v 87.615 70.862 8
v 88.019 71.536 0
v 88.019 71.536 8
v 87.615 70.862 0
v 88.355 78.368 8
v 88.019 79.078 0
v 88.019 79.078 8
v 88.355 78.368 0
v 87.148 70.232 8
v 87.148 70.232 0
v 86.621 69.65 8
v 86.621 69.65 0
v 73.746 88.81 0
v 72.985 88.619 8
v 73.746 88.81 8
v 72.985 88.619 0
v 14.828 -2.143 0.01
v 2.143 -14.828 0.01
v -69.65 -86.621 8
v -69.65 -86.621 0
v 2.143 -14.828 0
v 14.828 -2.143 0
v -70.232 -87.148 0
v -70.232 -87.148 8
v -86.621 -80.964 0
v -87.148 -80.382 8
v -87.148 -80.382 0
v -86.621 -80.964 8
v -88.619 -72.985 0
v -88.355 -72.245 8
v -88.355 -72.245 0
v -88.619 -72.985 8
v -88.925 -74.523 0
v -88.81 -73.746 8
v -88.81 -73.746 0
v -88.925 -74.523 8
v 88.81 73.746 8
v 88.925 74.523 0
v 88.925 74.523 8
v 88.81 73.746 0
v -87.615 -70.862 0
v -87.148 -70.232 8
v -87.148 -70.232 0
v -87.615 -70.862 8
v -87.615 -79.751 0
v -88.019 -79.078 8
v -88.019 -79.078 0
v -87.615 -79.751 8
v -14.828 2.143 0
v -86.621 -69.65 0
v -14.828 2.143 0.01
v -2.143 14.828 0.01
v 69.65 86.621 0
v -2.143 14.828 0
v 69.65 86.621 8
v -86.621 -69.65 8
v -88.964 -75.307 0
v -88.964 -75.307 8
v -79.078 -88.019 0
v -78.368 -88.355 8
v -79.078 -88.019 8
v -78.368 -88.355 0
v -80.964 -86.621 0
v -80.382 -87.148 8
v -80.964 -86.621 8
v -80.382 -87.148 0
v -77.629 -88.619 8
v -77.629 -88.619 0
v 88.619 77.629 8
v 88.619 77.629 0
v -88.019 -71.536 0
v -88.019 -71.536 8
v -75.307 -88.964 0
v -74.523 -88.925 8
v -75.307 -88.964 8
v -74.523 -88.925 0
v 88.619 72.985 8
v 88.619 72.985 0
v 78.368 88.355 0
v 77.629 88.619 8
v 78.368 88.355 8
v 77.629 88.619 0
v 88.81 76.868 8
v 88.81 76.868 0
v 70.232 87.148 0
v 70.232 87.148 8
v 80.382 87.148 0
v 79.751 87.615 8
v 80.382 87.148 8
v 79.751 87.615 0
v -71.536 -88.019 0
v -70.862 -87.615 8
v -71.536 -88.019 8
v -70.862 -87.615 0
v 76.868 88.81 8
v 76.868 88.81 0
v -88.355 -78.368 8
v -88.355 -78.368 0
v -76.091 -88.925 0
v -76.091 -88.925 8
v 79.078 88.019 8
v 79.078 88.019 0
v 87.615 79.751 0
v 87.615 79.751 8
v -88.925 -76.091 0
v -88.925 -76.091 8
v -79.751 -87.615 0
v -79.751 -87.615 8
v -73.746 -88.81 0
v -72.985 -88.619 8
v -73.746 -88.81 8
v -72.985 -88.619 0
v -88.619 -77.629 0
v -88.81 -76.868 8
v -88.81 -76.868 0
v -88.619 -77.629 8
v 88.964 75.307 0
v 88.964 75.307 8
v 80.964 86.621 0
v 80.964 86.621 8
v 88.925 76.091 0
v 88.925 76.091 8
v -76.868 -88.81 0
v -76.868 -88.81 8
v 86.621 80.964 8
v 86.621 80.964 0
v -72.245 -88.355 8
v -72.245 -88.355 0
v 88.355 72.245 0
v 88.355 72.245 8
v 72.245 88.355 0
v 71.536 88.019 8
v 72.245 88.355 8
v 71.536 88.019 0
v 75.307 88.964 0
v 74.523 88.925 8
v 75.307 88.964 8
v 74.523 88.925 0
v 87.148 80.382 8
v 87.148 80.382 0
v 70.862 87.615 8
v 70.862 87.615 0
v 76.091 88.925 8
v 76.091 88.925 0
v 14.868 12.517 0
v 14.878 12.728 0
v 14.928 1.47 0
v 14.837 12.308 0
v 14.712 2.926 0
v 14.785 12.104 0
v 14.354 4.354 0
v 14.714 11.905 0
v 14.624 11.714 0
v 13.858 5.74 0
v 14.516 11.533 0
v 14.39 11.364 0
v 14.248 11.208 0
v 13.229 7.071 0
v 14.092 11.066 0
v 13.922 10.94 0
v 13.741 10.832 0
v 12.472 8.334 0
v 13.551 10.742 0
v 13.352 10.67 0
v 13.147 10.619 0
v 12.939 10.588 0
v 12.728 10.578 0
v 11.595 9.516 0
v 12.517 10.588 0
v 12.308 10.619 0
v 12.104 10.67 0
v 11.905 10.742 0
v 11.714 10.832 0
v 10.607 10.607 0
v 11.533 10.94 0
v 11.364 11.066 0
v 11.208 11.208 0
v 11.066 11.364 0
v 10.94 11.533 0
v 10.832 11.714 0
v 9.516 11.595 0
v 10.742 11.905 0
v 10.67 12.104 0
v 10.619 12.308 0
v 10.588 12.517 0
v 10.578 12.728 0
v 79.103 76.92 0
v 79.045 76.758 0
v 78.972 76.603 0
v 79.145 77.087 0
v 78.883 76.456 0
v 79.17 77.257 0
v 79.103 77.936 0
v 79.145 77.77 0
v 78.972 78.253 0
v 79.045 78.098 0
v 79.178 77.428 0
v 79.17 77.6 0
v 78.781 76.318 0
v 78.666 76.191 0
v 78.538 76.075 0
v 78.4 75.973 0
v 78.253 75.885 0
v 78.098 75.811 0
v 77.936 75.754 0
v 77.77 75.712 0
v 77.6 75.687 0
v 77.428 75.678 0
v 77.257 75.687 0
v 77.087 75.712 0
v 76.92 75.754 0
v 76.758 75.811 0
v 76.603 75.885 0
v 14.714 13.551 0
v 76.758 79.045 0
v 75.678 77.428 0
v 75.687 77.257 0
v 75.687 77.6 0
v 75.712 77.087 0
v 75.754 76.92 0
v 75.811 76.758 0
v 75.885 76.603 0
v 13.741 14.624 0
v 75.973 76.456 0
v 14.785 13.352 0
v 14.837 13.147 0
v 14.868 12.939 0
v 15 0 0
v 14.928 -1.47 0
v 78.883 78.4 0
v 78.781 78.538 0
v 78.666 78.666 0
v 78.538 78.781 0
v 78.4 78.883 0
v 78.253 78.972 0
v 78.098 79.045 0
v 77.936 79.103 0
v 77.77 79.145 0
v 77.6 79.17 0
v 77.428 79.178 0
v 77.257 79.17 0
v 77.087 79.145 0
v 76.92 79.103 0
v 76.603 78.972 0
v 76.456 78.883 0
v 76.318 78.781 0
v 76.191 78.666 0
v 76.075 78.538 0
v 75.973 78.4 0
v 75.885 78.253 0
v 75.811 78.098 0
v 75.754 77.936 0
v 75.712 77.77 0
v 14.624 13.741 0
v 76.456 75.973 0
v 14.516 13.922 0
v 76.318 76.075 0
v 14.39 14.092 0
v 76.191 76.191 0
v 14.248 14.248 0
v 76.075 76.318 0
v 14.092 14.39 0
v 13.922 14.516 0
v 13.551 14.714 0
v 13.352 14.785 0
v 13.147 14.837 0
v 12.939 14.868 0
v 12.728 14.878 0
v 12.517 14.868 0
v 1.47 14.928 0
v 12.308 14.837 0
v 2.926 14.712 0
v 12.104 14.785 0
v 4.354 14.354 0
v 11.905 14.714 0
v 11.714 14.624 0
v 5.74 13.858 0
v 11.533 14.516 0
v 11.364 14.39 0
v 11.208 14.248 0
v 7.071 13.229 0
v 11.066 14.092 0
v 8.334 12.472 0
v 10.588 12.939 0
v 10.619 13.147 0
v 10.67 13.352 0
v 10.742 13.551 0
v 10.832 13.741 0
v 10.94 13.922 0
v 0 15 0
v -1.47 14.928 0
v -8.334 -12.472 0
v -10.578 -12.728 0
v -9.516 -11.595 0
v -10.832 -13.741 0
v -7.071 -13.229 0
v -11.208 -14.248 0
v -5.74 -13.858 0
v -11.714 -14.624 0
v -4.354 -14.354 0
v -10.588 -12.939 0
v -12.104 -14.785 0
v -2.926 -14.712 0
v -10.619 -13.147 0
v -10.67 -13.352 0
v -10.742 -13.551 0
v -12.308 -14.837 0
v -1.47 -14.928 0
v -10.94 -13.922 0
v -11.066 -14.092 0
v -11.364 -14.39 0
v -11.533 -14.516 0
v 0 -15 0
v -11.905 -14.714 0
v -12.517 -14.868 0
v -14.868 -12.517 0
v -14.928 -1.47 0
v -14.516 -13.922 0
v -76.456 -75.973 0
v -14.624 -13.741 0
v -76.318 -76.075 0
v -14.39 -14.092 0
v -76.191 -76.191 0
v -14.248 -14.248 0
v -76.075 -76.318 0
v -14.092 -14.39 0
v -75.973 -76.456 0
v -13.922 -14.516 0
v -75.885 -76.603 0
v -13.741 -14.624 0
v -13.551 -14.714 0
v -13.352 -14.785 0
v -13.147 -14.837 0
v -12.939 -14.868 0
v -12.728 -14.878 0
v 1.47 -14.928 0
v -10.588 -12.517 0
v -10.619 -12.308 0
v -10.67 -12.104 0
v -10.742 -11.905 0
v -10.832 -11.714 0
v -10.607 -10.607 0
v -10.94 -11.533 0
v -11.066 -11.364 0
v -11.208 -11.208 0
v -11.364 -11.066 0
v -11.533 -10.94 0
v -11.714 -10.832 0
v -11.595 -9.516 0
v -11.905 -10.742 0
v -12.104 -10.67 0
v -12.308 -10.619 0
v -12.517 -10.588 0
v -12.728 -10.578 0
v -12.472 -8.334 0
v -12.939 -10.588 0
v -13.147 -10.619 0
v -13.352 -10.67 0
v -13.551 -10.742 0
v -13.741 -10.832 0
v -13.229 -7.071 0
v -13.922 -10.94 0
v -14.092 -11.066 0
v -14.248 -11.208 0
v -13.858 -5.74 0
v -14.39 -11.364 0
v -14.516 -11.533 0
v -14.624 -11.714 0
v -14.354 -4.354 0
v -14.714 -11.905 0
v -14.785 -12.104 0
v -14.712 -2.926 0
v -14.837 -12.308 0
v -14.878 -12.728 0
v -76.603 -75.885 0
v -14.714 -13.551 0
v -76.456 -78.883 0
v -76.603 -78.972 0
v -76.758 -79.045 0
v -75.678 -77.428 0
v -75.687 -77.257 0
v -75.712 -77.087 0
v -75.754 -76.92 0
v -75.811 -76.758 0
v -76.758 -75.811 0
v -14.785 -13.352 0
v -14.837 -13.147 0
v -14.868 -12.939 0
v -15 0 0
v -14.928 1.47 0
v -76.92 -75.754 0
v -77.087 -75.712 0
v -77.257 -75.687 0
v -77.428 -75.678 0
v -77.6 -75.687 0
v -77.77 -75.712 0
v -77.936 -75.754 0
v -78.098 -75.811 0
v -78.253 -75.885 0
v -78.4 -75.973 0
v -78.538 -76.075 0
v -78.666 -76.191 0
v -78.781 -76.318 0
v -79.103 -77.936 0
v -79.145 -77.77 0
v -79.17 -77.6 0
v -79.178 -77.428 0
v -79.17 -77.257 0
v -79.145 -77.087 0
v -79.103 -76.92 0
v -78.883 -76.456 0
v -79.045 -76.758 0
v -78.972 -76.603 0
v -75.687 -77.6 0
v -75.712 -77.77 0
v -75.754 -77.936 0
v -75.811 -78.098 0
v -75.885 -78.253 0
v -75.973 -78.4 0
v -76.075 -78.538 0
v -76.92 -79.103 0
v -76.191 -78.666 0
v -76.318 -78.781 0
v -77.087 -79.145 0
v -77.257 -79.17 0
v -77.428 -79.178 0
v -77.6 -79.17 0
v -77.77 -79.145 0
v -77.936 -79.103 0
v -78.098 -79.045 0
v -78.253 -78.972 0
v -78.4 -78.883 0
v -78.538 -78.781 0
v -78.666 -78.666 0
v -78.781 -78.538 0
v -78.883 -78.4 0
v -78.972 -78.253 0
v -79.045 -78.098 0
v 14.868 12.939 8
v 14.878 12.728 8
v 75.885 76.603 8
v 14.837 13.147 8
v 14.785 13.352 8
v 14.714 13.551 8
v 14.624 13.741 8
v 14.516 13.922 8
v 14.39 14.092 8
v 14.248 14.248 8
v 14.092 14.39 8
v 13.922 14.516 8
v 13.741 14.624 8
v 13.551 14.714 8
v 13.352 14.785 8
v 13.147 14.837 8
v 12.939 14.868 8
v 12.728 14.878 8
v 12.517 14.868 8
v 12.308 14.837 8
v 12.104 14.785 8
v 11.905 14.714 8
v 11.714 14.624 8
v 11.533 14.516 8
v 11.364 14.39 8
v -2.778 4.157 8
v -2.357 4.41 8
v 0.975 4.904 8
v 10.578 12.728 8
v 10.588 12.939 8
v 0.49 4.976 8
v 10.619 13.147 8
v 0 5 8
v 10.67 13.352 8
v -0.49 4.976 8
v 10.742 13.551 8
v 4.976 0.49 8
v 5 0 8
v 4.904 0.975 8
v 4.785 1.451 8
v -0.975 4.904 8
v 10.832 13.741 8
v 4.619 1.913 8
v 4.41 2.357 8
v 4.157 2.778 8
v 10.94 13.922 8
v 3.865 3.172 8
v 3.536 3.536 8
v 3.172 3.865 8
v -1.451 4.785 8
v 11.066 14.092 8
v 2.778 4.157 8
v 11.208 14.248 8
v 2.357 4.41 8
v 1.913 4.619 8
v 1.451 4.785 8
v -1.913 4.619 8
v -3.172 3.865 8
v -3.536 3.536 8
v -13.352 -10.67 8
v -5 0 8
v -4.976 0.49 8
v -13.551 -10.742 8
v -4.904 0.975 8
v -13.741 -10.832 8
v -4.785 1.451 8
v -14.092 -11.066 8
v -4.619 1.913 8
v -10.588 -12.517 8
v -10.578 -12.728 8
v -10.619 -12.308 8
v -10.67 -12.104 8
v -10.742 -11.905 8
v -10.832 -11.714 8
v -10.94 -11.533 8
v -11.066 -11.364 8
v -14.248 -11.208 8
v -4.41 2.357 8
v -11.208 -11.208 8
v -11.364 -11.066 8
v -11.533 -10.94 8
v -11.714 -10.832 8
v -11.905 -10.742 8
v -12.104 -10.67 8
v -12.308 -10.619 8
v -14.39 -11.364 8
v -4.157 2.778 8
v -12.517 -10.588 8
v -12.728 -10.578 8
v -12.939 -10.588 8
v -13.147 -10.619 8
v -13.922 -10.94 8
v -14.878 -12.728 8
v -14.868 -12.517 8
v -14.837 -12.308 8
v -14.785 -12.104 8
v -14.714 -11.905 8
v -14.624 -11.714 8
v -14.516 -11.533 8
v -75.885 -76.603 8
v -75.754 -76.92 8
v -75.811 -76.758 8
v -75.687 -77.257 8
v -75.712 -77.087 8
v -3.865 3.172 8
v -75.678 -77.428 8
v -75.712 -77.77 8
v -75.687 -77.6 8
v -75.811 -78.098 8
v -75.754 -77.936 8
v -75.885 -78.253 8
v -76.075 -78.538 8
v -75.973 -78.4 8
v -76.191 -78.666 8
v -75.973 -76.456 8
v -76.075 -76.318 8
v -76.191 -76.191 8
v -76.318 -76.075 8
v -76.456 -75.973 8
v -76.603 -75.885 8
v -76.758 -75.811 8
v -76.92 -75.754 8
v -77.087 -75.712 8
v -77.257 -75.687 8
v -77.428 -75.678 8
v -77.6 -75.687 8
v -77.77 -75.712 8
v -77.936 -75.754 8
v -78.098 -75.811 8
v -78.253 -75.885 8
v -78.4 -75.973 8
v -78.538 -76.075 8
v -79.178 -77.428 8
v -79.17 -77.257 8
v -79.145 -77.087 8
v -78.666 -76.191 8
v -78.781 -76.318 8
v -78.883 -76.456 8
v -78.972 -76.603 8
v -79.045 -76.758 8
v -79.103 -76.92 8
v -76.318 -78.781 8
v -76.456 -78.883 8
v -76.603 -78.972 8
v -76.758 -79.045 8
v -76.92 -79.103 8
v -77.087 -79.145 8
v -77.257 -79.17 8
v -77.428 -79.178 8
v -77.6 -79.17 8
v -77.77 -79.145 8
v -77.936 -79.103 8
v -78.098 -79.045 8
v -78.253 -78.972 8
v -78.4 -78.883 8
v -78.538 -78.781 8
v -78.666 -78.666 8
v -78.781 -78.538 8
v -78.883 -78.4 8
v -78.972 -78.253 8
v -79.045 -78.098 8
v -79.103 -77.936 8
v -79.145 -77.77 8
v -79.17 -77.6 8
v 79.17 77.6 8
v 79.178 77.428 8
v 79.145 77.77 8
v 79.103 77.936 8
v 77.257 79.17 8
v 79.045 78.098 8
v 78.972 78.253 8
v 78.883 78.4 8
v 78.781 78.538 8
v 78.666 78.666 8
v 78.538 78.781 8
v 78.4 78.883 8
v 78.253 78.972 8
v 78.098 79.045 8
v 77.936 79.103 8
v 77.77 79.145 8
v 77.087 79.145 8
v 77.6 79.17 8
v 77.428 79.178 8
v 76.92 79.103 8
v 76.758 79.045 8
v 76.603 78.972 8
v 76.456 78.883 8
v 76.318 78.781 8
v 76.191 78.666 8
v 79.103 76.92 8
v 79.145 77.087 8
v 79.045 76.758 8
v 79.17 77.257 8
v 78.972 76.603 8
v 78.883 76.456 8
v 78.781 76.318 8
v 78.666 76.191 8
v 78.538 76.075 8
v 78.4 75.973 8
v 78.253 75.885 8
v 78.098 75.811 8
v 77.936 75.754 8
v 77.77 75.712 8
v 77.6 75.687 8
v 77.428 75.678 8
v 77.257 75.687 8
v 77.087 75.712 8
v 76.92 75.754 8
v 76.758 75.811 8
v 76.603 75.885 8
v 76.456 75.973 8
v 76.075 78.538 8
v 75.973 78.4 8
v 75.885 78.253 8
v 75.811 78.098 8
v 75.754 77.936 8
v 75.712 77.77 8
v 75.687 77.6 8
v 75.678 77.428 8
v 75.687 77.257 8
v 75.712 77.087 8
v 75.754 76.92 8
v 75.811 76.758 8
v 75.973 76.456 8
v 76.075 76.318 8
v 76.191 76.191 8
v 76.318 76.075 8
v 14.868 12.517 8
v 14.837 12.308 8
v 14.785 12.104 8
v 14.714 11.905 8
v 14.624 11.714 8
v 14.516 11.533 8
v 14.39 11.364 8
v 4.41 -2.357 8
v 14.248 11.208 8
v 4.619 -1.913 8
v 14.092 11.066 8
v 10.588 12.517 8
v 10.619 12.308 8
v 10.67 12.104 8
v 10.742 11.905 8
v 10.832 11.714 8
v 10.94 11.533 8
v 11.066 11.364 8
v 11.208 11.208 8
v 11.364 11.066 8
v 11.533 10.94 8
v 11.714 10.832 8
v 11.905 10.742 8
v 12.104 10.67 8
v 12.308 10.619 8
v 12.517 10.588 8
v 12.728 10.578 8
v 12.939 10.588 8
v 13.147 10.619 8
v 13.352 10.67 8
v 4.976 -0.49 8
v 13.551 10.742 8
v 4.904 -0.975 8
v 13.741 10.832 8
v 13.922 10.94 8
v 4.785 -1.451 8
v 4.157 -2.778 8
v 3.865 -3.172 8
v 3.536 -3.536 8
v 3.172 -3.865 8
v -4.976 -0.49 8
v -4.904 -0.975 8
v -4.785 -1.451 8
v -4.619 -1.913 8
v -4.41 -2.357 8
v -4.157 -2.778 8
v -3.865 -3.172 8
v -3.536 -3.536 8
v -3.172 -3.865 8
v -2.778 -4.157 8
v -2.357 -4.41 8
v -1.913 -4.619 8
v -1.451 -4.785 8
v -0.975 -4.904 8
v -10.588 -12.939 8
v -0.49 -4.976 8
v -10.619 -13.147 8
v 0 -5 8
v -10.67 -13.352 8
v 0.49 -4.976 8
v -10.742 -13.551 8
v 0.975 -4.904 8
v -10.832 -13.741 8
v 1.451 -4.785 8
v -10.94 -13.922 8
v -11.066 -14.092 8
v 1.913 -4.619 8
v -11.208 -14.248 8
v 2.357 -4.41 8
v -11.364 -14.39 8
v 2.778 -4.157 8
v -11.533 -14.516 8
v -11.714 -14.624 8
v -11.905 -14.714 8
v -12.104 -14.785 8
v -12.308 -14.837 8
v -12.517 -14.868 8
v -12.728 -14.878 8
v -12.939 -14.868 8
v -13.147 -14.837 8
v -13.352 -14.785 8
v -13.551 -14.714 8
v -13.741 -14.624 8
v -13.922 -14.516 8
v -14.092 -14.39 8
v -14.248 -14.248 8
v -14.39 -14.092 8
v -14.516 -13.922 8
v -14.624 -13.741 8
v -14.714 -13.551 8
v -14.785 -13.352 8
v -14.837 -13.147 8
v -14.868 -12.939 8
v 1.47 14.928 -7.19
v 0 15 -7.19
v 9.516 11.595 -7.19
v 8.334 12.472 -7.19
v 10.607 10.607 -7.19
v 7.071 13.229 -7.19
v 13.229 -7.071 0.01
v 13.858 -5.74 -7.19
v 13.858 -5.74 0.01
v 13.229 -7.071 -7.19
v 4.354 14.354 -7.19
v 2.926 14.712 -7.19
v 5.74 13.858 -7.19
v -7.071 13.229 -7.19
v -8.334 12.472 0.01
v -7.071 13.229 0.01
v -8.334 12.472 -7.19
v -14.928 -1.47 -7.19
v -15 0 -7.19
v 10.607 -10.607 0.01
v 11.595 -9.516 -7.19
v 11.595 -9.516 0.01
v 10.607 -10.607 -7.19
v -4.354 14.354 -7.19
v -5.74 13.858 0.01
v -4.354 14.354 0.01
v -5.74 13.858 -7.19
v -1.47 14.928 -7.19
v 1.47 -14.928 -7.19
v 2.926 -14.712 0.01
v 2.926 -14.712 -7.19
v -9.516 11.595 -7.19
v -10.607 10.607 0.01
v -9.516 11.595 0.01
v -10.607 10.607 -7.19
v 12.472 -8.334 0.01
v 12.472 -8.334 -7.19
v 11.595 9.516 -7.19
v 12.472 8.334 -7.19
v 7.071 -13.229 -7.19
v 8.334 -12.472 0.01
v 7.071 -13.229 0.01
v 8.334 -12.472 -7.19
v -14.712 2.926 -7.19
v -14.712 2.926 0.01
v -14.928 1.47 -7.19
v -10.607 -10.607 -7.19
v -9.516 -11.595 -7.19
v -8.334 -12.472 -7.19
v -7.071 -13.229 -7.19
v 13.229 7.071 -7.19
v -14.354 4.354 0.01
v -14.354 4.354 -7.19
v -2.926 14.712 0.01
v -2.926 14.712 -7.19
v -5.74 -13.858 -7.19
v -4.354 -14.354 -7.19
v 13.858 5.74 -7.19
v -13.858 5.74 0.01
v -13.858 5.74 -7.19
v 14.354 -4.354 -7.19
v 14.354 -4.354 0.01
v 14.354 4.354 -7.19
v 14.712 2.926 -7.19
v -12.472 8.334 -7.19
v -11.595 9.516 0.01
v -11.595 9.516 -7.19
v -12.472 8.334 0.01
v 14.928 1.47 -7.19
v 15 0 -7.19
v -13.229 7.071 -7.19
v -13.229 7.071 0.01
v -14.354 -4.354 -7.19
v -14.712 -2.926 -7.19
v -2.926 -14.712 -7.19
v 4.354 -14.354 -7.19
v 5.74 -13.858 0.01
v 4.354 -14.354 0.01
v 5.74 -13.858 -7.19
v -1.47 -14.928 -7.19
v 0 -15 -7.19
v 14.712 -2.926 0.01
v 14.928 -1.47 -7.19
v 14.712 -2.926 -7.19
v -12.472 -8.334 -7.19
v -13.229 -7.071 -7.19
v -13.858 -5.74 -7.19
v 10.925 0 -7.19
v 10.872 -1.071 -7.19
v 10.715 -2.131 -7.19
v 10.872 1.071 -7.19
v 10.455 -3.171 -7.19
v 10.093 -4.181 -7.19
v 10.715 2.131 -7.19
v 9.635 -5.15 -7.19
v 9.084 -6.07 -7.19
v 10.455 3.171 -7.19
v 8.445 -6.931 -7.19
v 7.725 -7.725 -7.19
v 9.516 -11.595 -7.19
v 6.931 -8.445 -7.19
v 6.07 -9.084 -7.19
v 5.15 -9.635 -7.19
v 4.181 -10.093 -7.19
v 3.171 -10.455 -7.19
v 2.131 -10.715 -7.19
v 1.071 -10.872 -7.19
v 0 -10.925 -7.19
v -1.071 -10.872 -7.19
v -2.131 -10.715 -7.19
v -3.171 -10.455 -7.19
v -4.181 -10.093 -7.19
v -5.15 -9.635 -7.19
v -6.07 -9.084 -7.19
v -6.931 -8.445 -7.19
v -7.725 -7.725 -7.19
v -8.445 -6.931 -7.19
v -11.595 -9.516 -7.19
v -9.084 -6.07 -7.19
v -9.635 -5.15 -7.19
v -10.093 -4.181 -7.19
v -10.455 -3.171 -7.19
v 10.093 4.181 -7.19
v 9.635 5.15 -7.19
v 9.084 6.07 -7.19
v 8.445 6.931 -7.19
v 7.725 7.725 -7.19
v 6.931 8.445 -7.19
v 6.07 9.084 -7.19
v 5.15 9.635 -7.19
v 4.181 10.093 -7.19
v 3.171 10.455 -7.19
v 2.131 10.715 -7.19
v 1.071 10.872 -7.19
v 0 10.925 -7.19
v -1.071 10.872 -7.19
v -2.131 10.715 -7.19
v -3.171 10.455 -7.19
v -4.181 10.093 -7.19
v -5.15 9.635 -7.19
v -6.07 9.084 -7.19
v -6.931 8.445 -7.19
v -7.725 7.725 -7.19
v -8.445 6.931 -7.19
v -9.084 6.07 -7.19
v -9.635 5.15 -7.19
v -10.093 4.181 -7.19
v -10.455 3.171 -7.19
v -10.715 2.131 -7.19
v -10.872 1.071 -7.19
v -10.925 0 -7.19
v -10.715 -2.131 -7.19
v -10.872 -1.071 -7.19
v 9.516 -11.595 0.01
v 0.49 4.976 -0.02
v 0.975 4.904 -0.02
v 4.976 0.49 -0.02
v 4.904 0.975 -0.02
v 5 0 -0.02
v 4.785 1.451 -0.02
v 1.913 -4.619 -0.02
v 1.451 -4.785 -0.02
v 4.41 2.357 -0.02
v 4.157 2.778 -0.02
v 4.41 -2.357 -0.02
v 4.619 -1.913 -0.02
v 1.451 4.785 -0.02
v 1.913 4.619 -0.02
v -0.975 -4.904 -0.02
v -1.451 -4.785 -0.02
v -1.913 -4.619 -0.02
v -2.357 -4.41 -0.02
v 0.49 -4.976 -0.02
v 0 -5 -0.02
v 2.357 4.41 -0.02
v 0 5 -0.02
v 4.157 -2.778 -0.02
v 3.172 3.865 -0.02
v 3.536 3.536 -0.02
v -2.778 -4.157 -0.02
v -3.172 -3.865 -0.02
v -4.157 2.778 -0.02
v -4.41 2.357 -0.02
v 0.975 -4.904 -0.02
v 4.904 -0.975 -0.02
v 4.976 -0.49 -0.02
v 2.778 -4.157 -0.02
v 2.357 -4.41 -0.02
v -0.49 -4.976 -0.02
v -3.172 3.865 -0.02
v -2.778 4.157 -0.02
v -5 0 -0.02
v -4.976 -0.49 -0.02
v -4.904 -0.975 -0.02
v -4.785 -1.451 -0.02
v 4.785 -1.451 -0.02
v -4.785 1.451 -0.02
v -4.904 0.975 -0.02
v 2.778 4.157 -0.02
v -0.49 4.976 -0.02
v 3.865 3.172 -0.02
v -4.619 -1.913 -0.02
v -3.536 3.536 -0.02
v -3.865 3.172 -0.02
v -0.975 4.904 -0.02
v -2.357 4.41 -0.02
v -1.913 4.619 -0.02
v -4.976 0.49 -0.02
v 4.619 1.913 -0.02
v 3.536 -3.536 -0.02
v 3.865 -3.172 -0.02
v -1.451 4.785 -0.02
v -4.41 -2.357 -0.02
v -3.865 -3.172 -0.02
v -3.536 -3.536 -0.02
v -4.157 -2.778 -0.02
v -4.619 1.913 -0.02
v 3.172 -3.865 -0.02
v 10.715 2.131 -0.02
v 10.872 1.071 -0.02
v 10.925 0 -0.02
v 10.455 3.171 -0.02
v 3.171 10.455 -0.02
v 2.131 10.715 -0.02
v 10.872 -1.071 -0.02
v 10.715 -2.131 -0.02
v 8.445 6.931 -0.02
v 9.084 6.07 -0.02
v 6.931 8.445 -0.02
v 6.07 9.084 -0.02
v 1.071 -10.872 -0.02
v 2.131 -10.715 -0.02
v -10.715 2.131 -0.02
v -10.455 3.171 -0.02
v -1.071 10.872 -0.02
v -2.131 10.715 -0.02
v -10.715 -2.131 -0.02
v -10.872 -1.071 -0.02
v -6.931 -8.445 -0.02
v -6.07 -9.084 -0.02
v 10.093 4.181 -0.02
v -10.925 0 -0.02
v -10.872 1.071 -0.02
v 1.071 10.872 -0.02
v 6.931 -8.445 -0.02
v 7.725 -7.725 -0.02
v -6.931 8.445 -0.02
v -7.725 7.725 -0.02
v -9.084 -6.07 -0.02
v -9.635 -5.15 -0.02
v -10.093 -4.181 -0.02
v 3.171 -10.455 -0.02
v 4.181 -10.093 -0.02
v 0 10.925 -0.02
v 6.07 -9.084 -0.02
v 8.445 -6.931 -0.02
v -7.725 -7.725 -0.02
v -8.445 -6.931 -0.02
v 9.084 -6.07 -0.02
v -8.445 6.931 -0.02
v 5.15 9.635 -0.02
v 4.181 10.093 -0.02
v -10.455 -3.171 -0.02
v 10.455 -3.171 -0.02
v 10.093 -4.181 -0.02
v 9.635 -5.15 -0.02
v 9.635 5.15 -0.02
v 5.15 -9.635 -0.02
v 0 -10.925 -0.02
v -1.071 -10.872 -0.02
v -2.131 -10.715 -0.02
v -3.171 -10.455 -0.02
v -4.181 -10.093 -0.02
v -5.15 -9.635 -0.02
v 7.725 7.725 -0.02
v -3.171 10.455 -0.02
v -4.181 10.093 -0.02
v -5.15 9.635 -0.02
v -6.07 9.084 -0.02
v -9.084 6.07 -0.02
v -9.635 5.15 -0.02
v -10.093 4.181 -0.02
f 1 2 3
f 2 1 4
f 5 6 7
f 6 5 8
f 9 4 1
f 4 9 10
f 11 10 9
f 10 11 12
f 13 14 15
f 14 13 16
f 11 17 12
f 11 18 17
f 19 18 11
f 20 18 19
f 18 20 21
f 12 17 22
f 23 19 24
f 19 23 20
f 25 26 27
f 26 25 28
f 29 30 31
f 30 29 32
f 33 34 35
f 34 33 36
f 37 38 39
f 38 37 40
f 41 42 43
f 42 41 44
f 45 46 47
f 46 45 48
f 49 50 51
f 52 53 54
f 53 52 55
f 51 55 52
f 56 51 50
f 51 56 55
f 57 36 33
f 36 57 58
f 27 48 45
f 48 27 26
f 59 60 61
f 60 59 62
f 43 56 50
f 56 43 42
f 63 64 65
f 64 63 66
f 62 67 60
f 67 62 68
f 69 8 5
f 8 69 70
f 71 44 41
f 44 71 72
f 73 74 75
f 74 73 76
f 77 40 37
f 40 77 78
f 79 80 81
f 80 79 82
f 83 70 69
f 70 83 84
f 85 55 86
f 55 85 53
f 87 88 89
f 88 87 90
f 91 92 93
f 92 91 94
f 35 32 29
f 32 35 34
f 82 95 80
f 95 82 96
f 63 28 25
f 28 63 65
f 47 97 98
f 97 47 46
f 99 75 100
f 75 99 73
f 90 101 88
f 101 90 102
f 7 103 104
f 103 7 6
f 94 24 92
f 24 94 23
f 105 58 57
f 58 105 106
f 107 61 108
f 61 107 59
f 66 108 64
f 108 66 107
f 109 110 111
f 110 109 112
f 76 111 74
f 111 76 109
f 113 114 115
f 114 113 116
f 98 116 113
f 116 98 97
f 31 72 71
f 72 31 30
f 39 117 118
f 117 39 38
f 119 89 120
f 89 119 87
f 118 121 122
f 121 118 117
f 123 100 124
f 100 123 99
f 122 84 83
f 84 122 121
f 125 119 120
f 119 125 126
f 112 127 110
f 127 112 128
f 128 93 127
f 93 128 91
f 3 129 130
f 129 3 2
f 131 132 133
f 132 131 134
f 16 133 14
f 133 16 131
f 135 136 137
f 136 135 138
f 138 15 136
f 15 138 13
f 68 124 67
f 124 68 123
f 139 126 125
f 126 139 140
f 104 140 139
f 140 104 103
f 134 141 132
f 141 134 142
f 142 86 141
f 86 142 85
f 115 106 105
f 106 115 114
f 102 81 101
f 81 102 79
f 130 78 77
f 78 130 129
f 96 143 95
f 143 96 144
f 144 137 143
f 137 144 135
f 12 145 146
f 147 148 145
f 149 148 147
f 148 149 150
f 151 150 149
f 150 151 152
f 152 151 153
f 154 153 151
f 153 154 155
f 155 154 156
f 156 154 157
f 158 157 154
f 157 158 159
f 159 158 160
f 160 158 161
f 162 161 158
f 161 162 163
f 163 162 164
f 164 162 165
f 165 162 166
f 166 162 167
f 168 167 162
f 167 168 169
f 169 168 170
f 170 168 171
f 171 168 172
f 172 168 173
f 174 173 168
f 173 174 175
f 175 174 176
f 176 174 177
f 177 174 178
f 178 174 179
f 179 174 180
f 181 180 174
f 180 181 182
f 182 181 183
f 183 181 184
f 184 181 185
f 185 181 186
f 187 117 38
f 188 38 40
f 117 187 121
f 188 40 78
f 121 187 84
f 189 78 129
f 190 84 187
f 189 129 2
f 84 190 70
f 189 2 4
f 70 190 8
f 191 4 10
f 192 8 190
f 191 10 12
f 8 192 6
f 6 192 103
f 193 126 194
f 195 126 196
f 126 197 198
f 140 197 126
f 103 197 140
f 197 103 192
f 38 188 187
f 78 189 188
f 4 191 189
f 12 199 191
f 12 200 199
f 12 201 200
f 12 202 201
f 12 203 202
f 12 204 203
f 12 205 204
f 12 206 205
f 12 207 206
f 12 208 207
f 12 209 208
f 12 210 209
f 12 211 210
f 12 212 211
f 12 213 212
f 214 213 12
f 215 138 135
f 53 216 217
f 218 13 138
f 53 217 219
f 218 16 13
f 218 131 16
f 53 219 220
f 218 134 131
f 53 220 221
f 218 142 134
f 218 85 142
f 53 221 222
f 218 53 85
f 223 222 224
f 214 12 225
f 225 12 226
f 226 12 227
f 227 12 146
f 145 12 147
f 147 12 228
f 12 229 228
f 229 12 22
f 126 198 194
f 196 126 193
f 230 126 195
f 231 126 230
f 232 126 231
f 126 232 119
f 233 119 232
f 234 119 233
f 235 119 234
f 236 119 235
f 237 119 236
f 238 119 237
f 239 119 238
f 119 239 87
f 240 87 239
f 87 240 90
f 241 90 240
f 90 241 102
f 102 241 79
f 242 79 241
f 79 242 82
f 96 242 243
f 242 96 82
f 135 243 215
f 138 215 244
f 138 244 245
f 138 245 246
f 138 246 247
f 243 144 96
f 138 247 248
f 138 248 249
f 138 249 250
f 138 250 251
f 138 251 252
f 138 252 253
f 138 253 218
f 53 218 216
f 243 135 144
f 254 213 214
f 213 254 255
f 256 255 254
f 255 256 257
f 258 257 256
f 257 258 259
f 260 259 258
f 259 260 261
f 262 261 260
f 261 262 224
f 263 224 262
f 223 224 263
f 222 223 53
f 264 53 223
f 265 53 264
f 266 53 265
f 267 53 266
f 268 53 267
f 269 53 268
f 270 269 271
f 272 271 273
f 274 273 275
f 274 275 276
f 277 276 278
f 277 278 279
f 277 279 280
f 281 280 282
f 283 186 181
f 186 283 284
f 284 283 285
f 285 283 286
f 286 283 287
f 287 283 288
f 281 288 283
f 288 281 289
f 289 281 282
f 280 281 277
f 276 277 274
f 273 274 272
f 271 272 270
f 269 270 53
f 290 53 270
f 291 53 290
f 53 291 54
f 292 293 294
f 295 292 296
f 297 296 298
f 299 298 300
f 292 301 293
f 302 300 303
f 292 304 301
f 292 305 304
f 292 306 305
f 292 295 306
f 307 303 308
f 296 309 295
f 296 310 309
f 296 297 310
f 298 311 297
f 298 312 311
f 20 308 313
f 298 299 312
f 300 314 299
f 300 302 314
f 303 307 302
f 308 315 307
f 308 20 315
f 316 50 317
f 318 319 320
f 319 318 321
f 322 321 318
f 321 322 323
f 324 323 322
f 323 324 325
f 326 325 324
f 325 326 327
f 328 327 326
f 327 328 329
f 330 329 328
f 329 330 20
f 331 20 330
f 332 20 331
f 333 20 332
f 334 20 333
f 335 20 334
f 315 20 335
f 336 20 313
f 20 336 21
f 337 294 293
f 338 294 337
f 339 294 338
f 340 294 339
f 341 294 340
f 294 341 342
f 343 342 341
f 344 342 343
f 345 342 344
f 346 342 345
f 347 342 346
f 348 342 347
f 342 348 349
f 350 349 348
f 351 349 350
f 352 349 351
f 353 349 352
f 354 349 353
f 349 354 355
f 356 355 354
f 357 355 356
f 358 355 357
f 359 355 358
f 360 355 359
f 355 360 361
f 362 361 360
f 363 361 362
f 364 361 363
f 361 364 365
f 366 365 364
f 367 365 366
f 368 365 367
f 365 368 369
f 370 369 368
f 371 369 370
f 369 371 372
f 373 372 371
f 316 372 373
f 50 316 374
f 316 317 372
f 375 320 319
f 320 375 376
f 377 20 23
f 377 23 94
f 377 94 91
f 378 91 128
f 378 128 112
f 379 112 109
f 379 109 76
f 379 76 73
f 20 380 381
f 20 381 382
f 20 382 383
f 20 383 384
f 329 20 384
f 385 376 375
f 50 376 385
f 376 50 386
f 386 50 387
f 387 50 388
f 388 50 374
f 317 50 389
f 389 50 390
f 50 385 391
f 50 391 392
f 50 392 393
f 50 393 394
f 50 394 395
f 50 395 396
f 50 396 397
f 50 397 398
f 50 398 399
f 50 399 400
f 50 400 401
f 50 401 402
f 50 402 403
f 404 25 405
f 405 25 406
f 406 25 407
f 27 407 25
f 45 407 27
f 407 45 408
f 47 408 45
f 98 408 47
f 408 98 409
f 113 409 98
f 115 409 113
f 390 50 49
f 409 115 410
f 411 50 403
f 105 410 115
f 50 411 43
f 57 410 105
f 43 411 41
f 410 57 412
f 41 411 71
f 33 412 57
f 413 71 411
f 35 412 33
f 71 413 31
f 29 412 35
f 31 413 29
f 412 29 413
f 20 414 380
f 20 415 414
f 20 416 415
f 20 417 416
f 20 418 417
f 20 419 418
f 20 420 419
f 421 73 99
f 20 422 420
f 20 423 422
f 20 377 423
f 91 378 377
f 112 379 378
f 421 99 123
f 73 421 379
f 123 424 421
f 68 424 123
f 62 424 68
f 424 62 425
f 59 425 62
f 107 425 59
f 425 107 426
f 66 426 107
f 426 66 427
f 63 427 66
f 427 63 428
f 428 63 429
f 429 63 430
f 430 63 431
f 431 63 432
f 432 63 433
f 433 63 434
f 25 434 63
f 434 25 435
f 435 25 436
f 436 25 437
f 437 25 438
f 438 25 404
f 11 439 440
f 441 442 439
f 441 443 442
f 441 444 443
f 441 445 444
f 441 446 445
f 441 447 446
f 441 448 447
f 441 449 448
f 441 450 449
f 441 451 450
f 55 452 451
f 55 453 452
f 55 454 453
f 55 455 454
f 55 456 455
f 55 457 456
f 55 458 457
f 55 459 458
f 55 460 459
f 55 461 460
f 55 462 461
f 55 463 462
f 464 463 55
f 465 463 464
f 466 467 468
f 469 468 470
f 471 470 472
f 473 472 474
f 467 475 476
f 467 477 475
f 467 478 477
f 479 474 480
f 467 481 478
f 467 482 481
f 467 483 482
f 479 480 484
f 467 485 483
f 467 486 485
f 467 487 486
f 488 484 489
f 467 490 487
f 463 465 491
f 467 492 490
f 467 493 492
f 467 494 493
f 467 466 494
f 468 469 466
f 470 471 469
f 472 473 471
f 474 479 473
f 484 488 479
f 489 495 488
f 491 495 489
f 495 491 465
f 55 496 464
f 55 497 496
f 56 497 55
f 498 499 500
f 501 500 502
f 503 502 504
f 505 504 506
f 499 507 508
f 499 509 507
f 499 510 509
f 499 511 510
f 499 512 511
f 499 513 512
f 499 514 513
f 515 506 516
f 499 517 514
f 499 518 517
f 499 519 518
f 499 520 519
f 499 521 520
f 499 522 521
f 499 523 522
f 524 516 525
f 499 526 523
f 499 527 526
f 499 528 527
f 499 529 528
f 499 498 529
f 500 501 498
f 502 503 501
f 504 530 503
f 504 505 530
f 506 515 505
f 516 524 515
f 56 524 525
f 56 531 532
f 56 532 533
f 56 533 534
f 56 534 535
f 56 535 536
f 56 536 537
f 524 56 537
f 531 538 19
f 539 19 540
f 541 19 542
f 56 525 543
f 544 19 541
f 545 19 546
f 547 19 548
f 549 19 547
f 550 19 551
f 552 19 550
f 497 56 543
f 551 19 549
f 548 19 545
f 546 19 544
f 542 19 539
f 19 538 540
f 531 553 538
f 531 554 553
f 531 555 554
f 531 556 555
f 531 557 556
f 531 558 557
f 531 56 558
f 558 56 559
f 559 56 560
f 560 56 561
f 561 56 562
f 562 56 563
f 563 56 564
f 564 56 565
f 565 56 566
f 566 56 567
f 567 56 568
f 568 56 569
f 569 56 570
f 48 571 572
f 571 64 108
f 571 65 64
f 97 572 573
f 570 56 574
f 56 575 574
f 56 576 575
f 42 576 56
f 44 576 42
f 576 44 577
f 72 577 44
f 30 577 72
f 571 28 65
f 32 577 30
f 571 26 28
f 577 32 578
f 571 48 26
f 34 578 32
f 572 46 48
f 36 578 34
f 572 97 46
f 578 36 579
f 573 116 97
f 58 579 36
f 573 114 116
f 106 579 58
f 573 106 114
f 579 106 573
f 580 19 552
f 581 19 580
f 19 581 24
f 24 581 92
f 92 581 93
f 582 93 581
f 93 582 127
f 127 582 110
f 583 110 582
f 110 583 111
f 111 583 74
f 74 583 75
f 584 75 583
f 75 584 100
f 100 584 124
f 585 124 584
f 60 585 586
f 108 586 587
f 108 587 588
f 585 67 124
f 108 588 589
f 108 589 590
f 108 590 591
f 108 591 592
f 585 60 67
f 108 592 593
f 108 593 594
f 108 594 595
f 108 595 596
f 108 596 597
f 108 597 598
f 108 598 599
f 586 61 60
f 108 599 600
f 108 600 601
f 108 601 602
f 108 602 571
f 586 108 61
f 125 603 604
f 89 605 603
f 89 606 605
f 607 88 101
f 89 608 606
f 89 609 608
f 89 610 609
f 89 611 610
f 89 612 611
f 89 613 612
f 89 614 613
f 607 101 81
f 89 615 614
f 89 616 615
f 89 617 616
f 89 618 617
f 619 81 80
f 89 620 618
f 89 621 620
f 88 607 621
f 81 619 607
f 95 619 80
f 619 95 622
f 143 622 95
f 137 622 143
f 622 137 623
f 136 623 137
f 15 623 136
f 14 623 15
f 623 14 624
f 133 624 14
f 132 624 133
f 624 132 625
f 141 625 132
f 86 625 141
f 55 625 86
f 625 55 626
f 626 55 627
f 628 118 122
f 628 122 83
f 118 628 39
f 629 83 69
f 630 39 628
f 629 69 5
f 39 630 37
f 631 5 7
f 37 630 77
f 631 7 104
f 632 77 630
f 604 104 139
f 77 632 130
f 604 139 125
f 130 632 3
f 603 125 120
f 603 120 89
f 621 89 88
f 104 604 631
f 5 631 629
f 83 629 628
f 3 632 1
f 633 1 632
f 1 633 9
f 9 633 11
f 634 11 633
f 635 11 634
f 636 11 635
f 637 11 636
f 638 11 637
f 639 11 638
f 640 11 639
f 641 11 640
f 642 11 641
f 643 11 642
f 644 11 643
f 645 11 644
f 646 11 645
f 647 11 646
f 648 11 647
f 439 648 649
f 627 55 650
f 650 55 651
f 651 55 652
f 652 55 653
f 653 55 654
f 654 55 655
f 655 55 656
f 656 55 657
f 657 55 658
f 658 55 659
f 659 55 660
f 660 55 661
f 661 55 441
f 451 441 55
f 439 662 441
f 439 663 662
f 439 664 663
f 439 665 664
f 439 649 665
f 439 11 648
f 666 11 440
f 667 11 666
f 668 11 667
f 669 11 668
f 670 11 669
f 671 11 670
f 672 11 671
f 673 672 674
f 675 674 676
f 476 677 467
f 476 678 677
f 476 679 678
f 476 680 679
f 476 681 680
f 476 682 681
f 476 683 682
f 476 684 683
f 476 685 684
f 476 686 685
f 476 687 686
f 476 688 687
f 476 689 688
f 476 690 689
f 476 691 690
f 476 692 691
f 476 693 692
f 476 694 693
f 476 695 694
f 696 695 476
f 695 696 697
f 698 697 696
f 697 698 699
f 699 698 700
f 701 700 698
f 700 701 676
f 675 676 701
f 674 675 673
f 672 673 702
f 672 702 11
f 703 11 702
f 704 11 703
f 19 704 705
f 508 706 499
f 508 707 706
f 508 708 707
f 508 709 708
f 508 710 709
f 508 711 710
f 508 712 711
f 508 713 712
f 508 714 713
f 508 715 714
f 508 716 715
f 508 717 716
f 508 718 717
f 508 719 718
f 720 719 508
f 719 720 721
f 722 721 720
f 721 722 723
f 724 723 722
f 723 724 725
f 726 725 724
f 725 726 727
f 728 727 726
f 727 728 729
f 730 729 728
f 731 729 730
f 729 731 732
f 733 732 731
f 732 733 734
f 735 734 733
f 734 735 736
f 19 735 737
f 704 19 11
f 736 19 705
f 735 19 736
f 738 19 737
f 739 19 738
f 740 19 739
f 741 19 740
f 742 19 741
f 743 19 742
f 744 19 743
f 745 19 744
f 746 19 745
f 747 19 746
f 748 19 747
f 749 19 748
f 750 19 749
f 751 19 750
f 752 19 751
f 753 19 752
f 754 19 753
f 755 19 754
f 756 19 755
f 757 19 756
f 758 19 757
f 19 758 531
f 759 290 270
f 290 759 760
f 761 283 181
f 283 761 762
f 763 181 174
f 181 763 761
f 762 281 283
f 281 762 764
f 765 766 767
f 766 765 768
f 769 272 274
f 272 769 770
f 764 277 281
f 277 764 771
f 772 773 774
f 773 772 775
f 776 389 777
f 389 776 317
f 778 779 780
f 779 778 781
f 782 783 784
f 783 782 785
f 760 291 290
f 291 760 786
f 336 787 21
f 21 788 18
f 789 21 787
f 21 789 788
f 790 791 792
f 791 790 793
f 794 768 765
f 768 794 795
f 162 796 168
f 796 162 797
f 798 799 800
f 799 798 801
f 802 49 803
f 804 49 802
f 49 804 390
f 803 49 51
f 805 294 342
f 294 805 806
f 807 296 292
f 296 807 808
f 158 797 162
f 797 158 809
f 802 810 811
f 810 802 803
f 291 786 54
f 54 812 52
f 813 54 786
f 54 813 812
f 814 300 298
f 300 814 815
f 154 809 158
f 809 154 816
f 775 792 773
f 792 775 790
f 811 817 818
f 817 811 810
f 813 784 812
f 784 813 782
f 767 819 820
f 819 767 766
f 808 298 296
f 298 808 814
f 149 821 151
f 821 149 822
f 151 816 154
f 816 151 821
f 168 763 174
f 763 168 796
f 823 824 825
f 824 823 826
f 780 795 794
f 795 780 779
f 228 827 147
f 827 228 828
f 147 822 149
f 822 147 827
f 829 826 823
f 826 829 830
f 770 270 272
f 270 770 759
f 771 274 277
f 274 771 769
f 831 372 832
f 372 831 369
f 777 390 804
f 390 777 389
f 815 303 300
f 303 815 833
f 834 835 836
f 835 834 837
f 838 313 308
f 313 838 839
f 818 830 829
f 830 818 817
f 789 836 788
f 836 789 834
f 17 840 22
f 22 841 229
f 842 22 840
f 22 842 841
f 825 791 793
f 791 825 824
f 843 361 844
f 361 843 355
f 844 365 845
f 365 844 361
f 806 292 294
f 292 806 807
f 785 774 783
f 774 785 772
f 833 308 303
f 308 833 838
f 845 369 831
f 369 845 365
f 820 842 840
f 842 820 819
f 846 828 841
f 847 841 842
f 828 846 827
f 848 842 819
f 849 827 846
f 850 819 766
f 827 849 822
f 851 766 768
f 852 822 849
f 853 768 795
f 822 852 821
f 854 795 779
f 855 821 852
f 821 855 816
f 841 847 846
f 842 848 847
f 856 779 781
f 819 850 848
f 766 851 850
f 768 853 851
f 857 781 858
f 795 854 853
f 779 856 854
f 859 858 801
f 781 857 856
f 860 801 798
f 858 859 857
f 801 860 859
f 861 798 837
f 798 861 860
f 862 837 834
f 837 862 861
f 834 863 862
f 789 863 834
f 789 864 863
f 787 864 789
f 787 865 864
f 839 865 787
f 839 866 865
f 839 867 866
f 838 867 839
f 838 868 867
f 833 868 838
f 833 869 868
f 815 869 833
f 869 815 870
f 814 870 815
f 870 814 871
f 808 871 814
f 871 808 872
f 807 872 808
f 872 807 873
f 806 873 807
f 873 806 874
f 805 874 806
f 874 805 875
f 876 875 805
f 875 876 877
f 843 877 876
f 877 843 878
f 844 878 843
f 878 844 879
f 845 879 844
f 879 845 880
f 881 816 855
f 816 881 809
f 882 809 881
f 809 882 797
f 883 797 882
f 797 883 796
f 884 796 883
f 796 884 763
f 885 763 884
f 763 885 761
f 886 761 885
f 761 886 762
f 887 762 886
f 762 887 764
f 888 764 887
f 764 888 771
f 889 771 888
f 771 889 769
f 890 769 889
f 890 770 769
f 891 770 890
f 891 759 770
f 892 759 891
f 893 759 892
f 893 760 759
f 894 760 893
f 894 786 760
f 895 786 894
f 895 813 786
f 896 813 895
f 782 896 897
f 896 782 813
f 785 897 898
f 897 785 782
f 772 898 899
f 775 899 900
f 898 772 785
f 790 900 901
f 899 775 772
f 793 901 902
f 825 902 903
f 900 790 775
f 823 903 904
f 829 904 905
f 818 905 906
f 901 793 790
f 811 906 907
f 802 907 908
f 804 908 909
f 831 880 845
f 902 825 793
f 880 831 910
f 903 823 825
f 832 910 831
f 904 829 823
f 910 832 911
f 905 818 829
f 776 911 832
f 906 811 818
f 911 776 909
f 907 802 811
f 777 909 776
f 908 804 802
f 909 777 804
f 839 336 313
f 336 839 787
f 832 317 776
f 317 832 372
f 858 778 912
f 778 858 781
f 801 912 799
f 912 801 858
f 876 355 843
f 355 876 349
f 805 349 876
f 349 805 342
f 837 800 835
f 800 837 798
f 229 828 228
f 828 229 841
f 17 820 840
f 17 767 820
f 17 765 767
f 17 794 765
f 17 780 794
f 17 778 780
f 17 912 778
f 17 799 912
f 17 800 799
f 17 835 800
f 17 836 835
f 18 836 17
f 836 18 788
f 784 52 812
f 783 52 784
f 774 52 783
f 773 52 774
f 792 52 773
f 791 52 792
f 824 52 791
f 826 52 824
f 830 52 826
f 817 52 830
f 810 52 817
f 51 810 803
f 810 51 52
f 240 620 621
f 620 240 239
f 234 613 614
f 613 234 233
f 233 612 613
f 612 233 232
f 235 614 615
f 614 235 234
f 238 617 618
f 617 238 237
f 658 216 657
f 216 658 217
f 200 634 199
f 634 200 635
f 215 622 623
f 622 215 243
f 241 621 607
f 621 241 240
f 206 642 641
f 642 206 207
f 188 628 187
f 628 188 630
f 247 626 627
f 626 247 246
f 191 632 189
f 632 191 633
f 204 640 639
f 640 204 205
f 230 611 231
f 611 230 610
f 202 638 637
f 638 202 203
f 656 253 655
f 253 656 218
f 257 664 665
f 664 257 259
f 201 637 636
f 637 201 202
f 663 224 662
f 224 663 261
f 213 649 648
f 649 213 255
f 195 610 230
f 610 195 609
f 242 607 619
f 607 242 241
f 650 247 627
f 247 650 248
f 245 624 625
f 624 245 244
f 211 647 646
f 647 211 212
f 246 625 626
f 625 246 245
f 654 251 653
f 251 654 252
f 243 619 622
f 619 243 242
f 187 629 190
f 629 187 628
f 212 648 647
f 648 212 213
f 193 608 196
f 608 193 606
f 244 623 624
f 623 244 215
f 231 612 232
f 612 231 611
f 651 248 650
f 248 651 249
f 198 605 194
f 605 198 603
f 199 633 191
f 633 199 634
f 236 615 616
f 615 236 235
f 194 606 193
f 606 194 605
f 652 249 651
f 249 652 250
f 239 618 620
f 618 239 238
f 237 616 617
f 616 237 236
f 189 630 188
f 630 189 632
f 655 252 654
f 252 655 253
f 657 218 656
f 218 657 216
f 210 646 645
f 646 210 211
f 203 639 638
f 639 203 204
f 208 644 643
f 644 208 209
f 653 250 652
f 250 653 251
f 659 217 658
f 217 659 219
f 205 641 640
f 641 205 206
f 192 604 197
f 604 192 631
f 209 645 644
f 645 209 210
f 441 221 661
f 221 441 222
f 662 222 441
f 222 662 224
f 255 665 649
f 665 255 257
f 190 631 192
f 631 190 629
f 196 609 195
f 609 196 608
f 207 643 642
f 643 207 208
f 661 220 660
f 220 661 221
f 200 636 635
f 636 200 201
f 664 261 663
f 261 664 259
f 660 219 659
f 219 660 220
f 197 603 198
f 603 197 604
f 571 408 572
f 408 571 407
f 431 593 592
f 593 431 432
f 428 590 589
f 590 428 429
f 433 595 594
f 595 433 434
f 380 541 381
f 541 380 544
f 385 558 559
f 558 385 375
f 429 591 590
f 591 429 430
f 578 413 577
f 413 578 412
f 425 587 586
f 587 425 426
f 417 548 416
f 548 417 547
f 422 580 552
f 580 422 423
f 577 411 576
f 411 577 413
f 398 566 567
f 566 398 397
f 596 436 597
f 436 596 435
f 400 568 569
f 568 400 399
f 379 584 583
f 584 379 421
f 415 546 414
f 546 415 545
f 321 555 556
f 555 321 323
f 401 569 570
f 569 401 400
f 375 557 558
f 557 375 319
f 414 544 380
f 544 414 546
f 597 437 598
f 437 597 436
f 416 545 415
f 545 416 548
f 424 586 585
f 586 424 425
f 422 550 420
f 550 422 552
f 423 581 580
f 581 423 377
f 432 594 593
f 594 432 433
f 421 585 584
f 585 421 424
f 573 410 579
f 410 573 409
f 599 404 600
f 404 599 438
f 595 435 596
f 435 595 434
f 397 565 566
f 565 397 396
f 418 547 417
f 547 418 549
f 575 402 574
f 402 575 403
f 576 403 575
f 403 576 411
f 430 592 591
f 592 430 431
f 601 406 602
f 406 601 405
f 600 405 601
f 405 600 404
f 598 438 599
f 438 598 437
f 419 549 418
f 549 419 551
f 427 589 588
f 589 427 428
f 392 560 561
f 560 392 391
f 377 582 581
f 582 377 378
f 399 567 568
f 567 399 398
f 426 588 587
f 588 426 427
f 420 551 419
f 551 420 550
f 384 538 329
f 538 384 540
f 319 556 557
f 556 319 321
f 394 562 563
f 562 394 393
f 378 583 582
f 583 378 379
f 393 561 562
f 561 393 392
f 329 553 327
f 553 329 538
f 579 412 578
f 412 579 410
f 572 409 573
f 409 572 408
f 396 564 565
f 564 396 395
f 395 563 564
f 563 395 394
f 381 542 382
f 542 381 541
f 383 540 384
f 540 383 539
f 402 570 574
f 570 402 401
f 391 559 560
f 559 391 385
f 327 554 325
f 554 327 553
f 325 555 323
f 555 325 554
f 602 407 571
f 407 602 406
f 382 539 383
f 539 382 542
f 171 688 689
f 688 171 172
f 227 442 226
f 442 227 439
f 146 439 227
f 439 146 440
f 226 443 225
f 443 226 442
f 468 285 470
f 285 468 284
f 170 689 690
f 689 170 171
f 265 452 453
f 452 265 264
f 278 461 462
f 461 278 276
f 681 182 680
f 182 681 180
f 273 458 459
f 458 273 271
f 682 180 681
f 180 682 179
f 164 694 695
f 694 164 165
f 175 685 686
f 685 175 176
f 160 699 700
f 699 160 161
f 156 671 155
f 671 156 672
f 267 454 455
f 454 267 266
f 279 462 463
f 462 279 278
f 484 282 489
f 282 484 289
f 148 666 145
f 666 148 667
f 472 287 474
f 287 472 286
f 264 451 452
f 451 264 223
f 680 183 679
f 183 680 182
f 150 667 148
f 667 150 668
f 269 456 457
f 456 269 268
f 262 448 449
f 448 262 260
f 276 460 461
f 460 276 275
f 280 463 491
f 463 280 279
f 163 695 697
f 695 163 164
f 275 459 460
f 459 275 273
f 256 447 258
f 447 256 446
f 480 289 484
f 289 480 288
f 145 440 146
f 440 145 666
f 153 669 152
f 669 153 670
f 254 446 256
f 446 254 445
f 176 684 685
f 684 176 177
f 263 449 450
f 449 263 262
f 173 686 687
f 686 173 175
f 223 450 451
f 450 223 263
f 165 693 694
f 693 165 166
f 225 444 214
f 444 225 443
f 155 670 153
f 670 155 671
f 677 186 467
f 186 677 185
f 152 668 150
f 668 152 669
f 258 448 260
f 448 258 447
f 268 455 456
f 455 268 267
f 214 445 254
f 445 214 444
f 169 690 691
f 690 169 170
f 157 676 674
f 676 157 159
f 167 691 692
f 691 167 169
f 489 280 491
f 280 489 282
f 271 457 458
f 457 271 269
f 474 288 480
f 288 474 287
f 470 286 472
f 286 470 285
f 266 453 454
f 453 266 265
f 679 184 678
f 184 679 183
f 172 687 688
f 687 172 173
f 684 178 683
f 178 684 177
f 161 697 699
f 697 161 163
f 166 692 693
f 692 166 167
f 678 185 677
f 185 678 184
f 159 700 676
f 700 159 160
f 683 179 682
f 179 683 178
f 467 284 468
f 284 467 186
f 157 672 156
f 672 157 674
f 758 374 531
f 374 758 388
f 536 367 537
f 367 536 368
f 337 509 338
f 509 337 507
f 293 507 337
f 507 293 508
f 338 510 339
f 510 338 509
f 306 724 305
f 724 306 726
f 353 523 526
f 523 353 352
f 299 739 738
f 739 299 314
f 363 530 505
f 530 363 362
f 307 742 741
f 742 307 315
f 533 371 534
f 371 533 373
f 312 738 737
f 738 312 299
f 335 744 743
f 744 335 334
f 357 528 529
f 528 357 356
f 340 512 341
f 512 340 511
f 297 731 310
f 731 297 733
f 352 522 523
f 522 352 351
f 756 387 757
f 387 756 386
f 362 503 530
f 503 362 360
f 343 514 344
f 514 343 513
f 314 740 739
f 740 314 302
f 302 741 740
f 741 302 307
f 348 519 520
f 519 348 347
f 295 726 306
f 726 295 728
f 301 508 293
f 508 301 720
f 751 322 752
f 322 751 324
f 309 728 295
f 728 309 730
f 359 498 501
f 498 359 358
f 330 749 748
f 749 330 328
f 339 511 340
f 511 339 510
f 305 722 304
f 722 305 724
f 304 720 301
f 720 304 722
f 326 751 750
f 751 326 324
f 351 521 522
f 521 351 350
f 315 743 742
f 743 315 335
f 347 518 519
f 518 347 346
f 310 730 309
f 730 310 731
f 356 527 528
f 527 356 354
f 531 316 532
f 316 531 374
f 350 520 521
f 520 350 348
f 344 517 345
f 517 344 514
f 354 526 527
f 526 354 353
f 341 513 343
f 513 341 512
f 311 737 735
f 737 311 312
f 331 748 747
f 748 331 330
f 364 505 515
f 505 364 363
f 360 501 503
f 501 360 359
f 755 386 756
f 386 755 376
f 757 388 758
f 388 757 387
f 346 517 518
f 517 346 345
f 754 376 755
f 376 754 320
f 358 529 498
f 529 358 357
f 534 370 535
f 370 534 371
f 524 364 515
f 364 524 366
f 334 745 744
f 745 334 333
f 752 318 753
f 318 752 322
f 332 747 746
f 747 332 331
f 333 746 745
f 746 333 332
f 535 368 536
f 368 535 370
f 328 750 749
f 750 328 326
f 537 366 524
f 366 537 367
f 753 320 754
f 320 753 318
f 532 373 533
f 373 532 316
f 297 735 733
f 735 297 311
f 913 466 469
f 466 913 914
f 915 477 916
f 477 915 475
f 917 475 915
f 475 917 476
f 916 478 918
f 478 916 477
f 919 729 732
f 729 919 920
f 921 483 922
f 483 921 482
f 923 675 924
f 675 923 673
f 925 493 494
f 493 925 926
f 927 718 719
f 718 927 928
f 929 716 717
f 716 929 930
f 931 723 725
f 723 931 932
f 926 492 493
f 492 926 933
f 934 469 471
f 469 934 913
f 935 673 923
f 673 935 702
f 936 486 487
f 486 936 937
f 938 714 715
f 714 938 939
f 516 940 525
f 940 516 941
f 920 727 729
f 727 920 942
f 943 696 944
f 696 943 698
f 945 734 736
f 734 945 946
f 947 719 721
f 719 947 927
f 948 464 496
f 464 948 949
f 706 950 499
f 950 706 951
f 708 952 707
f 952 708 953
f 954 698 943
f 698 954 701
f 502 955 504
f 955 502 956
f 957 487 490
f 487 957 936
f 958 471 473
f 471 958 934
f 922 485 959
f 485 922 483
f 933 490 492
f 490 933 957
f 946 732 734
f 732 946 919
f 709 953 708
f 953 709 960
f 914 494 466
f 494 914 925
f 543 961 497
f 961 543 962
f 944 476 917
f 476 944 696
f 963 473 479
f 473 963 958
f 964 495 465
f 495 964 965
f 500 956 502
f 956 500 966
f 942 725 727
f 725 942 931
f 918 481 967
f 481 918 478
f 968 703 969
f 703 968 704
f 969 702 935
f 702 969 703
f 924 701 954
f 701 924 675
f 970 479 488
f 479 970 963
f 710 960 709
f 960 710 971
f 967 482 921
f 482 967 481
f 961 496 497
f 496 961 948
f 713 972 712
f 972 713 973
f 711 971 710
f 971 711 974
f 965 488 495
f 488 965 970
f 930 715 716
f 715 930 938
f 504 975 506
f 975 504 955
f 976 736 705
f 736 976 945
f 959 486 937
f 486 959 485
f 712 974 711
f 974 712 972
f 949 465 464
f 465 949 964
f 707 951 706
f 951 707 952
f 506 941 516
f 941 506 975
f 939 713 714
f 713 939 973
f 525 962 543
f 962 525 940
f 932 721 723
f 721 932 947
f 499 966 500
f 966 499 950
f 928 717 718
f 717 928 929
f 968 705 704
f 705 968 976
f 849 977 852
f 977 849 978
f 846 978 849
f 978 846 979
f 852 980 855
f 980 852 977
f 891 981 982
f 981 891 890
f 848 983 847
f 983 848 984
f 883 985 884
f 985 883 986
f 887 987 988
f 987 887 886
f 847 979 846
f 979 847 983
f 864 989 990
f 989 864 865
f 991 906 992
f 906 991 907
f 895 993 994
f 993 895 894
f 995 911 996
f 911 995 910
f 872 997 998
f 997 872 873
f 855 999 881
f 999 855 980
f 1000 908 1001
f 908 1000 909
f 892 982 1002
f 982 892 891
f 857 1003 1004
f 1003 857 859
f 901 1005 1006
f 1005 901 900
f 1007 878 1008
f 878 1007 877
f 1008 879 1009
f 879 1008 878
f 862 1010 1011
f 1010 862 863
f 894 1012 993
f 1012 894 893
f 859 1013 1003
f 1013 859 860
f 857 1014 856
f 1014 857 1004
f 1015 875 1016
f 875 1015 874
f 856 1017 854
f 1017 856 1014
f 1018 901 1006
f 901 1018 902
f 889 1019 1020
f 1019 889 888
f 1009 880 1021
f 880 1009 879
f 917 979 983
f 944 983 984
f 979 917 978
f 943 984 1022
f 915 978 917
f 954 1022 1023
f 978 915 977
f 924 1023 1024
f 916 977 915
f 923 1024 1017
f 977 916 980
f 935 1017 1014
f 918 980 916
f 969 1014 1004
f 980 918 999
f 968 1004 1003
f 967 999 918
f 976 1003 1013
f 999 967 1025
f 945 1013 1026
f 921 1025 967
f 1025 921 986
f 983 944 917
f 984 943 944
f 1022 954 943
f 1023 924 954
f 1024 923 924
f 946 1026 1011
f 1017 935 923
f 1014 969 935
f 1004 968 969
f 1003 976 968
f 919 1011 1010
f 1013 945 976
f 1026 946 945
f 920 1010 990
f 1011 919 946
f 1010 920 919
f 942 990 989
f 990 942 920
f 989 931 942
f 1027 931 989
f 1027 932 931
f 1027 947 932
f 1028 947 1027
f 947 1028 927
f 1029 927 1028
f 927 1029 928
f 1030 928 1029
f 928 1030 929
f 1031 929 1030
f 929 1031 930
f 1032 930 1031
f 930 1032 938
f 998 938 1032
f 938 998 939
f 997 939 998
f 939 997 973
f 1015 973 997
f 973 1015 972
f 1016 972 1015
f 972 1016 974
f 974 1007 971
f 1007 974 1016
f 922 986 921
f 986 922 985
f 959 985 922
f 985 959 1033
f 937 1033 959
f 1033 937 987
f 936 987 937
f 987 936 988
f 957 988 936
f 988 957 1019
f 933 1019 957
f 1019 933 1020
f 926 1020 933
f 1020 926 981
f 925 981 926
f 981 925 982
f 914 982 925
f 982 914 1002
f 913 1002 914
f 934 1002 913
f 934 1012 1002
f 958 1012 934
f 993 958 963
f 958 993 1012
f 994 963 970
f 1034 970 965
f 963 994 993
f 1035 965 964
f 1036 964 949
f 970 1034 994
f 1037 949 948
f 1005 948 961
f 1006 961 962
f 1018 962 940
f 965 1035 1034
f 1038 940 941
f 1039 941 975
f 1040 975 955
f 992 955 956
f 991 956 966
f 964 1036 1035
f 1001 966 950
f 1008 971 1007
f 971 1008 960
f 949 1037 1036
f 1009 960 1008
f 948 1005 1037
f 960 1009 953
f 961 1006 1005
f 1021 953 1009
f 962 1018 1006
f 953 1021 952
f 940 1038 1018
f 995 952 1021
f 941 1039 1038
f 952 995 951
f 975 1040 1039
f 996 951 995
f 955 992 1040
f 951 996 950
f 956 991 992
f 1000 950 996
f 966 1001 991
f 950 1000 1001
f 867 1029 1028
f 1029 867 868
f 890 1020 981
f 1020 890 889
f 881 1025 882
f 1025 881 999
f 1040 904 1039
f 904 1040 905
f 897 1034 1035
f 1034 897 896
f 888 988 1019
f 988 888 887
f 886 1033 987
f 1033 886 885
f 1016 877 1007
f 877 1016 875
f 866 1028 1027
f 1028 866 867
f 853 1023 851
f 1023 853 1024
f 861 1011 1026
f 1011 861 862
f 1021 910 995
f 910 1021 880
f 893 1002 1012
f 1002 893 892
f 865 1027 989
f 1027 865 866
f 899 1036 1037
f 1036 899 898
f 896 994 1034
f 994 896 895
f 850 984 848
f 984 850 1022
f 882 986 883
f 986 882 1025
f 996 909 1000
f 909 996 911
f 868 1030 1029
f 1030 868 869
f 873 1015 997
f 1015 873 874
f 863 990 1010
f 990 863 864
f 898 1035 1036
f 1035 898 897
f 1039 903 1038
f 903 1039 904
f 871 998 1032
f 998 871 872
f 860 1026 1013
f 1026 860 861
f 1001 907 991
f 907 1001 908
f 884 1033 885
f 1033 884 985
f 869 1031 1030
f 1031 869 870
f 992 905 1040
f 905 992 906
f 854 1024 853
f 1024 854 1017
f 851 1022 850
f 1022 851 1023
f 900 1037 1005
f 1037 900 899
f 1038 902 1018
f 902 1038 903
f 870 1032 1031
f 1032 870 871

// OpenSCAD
// Gen-CJ — front BEARING BRIDGE (bar endbell, 2026-10-10): a 608 boss on a 24 mm wide bar that spans the
// two frame rods at 45 deg and 45+180 deg (R = flange_bolt_r). The front bridge uses the rods at 45/225 deg, the rear
// bridge the rods at 135/315 deg, so the two bridges cross at 90 deg and the stator is held at 4 points.
// A bar instead of a full disc is what lets this big-ring kit fit ONE 410 mm plate. Print flat face DOWN (boss up, no supports).
// Brace holes (temporary M4 jack rods, R = brace_r) sit on the bar axis.
include <parameters.scad>;
$fn = 64;
bar_w = 24;
bar_len = 2 * (flange_bolt_r + 9);
module bar_2d() { offset(r=8) offset(delta=-8) square([bar_len, bar_w], center=true); }
difference() {
    rotate([0, 0, 45]) union() {
        linear_extrude(endbell_thick) bar_2d();
        translate([0, 0, -bearing_h + 0.01]) cylinder(d=30, h=bearing_h);
    }
    translate([0, 0, -bearing_h - 0.1]) cylinder(d=endbell_shaft_clear, h=50);
    translate([0, 0, -bearing_h - 0.02]) cylinder(d=bearing_d, h=bearing_h);
    for (s = [0, 180]) rotate([0, 0, 45 + s]) translate([flange_bolt_r, 0, -20]) cylinder(d=m3_clear, h=60);
    for (a = brace_angles) translate([brace_r*cos(a), brace_r*sin(a), -20]) cylinder(d=brace_d, h=50);
}
